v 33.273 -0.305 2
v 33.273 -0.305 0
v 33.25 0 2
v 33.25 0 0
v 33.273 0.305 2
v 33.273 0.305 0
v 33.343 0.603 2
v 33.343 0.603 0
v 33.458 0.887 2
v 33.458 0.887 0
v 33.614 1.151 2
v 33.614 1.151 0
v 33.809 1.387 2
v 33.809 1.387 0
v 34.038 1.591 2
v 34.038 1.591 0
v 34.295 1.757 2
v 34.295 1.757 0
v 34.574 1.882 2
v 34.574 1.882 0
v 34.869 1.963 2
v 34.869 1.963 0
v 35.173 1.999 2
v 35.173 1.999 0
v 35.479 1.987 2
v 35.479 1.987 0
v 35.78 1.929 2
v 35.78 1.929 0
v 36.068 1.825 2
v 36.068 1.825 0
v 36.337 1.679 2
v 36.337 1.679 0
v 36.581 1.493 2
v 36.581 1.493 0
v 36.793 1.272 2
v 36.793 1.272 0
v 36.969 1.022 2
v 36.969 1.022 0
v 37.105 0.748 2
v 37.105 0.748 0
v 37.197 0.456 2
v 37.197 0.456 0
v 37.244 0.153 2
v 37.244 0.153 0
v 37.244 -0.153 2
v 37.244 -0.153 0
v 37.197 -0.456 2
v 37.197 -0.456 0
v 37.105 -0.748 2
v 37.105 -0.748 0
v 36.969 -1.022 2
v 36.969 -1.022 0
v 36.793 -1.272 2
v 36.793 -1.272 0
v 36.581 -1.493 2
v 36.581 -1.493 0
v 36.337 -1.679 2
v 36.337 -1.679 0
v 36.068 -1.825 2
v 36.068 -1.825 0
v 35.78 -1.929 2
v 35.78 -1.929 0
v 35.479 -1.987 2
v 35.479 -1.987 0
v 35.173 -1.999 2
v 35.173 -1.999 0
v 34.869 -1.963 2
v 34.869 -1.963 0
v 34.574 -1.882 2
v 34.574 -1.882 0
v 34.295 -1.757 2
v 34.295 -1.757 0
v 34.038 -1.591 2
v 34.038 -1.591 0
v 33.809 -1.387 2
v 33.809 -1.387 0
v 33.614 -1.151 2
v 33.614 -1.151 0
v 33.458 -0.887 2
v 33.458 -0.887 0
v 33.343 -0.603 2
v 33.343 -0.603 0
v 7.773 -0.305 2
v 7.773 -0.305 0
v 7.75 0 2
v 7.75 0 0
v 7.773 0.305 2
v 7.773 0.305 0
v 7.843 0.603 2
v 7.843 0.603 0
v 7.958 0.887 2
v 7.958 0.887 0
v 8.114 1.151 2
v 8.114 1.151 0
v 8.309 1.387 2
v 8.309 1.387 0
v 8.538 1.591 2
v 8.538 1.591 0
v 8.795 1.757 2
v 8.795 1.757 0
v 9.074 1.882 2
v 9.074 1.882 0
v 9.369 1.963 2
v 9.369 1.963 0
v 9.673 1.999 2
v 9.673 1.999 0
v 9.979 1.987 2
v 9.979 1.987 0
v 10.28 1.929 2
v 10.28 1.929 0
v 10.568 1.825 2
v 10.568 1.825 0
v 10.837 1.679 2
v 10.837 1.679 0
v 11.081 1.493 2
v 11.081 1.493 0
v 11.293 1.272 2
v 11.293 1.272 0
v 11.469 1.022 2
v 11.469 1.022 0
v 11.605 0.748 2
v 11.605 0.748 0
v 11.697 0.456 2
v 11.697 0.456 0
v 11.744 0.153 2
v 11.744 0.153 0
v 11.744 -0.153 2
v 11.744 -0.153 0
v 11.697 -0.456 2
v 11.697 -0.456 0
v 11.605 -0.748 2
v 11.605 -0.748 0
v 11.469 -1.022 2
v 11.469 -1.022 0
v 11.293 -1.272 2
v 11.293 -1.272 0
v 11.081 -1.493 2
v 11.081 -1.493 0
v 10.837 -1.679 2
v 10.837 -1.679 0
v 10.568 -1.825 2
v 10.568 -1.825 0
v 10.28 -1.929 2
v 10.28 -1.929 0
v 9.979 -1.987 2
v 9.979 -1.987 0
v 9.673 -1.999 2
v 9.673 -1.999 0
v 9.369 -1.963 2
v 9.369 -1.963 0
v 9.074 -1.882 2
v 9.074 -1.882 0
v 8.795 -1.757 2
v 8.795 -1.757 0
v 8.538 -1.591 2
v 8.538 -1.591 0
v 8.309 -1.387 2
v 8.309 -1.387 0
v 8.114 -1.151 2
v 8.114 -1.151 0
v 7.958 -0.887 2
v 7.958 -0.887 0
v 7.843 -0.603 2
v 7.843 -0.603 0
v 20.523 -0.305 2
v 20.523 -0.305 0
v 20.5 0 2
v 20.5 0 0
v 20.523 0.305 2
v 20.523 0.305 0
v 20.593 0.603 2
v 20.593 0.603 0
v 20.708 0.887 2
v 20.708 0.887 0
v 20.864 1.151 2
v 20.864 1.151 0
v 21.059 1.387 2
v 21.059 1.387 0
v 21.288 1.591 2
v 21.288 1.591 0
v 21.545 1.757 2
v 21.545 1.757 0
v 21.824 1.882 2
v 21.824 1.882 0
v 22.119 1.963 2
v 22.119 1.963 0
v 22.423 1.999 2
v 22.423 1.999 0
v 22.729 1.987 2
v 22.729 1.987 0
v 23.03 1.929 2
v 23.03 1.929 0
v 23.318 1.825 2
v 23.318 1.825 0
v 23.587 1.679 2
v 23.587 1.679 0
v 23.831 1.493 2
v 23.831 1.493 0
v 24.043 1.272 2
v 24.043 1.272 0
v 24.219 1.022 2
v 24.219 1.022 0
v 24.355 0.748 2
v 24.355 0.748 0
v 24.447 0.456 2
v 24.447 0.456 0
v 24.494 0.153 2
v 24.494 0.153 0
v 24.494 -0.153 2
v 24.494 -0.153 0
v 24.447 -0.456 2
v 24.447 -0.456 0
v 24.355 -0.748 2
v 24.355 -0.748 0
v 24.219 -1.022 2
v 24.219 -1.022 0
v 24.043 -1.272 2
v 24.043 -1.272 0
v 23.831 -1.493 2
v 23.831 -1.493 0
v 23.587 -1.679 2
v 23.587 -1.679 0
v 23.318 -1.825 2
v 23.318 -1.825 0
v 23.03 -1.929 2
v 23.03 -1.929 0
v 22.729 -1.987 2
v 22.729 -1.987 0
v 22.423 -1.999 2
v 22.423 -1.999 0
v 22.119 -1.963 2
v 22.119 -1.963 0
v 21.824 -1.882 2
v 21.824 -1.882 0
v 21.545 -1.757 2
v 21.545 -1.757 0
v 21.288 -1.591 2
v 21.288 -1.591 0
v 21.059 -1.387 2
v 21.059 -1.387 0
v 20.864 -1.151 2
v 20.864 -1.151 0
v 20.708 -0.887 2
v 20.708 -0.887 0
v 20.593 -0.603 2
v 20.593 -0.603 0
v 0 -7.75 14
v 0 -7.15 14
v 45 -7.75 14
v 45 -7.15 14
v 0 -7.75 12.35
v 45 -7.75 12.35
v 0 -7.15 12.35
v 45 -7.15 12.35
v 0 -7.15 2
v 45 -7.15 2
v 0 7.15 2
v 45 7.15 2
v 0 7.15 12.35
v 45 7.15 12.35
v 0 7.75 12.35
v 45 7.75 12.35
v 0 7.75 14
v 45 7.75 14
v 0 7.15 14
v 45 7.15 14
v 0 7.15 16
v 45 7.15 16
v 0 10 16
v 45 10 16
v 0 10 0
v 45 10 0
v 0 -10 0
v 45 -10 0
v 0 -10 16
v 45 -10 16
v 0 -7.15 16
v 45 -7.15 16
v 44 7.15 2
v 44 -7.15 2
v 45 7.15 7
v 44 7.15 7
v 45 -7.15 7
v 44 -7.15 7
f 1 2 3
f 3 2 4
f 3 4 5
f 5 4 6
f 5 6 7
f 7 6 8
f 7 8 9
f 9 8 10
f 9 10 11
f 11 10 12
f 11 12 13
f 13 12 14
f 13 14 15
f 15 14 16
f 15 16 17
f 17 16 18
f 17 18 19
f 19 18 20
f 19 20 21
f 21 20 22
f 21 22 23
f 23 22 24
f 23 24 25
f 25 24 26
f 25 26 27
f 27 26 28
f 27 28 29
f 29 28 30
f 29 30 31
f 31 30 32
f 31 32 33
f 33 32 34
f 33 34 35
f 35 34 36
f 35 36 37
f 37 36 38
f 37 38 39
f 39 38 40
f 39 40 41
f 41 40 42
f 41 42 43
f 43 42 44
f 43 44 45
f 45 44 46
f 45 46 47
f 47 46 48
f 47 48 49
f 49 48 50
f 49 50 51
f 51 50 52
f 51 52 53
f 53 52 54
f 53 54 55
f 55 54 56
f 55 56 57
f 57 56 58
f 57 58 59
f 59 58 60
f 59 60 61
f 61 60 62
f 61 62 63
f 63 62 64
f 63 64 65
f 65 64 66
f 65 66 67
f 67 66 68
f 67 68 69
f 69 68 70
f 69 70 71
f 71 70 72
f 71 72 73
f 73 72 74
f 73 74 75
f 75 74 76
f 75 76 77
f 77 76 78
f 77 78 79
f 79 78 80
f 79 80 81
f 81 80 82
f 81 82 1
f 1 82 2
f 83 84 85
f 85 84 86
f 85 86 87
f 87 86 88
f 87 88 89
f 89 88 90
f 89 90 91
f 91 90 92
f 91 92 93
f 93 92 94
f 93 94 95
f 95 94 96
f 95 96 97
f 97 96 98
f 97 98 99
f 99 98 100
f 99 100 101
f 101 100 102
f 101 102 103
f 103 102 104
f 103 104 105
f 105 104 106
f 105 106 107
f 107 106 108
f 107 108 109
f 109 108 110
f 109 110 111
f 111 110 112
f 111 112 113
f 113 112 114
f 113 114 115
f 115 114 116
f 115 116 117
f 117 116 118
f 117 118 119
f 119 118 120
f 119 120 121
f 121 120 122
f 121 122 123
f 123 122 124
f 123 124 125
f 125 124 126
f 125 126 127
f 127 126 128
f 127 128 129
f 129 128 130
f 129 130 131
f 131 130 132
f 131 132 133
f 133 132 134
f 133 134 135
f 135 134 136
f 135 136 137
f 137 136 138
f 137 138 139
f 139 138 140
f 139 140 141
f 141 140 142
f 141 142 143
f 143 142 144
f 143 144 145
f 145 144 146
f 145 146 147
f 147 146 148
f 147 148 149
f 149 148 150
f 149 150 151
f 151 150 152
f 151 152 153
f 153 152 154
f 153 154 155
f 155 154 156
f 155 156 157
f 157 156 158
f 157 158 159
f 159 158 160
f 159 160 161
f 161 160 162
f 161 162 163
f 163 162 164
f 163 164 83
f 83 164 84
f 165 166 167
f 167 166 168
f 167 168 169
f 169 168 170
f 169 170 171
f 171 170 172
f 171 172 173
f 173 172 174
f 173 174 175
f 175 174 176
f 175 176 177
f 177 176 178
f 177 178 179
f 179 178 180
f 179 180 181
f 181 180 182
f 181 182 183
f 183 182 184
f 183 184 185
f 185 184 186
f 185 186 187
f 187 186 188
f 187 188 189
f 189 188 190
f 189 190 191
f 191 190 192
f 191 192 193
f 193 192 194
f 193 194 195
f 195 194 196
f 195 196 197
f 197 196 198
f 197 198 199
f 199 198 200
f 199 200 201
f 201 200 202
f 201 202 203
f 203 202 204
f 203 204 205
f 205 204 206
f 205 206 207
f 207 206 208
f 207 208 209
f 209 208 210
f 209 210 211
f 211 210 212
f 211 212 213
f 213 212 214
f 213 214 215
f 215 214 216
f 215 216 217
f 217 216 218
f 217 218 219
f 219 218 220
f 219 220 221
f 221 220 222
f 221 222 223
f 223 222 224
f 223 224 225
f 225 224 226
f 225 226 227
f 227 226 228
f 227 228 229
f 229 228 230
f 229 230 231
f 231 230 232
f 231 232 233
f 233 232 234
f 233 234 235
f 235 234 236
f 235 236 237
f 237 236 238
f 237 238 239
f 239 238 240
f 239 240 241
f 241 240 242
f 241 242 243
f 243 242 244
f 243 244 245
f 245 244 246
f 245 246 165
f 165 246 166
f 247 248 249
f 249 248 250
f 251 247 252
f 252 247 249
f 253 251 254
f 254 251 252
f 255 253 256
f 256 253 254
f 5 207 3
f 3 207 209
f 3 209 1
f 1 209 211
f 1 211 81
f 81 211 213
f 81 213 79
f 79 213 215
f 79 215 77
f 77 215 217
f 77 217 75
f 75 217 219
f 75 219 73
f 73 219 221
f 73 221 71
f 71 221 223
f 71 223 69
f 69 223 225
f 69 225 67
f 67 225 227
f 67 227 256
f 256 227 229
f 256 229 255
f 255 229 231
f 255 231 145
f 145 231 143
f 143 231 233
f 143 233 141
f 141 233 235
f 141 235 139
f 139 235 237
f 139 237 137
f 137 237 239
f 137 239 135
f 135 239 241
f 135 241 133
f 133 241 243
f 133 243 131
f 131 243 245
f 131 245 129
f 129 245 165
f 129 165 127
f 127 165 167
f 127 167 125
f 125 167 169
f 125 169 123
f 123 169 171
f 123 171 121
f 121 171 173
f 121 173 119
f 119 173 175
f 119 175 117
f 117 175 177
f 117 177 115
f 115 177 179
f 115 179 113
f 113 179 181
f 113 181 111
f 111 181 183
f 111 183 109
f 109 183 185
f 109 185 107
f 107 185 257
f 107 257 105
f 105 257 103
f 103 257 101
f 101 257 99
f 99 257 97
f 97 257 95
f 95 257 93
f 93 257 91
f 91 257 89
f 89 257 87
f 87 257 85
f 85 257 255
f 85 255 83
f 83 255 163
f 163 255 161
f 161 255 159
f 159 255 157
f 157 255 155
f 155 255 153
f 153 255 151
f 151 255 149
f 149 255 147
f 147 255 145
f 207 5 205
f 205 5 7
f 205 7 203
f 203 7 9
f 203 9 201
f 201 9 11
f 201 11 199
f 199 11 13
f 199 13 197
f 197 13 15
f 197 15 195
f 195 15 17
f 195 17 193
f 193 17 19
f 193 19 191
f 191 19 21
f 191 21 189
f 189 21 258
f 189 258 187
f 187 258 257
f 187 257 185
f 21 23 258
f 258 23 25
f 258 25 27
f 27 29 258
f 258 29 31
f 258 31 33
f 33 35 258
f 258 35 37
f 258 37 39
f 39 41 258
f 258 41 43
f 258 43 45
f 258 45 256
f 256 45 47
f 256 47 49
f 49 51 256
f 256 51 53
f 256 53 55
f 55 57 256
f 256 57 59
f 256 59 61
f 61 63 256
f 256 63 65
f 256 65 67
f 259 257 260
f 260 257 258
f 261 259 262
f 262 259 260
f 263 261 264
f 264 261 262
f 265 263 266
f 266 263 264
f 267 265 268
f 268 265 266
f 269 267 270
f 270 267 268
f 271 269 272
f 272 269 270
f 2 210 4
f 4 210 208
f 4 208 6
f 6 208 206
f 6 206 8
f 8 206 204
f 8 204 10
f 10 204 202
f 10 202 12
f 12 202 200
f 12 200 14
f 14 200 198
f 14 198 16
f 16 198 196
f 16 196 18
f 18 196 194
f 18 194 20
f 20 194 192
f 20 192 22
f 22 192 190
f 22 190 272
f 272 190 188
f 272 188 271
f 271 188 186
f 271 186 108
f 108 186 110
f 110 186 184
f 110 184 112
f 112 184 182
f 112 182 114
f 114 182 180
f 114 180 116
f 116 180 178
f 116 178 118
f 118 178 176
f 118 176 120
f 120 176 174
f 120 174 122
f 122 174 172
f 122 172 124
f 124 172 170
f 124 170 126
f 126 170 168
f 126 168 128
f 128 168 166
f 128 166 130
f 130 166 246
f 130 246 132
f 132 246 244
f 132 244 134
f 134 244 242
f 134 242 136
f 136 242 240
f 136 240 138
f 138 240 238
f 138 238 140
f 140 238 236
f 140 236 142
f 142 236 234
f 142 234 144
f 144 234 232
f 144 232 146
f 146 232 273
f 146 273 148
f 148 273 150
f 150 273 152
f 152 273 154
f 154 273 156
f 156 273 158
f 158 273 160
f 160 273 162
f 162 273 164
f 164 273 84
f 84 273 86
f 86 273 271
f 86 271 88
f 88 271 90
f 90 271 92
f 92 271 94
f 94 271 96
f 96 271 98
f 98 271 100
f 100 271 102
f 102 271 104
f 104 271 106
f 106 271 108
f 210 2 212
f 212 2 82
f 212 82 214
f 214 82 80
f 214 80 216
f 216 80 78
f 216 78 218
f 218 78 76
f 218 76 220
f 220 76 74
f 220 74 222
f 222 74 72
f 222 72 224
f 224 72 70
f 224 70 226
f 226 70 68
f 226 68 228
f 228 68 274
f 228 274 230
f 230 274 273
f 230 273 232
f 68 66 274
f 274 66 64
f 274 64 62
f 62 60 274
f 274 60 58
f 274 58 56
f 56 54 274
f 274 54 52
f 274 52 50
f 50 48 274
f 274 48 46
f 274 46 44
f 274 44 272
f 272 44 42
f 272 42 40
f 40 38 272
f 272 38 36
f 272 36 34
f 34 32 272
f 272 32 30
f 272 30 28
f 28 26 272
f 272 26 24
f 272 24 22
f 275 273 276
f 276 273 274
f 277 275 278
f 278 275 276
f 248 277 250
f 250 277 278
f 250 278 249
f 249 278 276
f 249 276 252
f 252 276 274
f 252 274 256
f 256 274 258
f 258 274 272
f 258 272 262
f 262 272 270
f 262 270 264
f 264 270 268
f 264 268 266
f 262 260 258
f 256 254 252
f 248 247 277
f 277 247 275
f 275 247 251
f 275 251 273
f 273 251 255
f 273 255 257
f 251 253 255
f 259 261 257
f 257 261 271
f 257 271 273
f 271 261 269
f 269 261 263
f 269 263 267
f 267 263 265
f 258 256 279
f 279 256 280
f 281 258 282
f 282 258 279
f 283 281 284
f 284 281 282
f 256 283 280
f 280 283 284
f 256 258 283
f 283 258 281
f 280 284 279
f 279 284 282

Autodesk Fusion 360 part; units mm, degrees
sketch "Main Body" plane through (0, 0, 0) normal (1, 0, 0) x (0, 1, 0)
  line L0 (7.15, 16) -> (10, 16)
  line L1 (10, 16) -> (10, 0)
  line L2 (10, 0) -> (0, 0)
  line L3 (7.15, 16) -> (7.15, 14)
  line L4 (7.15, 14) -> (7.75, 14)
  line L5 (7.75, 14) -> (7.75, 12.35)
  line L6 (7.75, 12.35) -> (7.15, 12.35)
  line L7 (7.15, 12.35) -> (7.15, 2)
  line L8 (7.15, 2) -> (0, 2)
  line L9 (0, 16.5) -> (0, -3.5) construction
  line L10 (-10, 16) -> (-10, 0)
  line L11 (-7.15, 14) -> (-7.75, 14)
  line L12 (-7.75, 12.35) -> (-7.15, 12.35)
  line L13 (-10, 0) -> (0, 0)
  line L14 (-7.15, 12.35) -> (-7.15, 2)
  line L15 (-7.75, 14) -> (-7.75, 12.35)
  line L16 (-7.15, 2) -> (0, 2)
  line L17 (-7.15, 16) -> (-7.15, 14)
  line L18 (-7.15, 16) -> (-10, 16)
  point P0 (0, 16.5)
  point P1 (0, -3.5)
  dimension "d1" = 14
  dimension "d3" = 7.75
  dimension "d4" = 2
  dimension "d5" = 0.6
  dimension "d6" = 0.6
  dimension "d7" = 1.65
  dimension "d25" = 10
  dimension "d26" = 2
extrude "Extrude1" add sketch "Main Body" along normal blind 45 makes body 1
sketch "Mounting Hole" plane through (0, 0, 0) normal (0, 0, -1) x (1, 0, 0)
  line L0 (0, 10) -> (0, -10)
  line L1 (0, -10) -> (45, -10)
  line L2 (45, -10) -> (45, 10)
  line L3 (45, 10) -> (0, 10)
  line L4 (0, -10) -> (45, 10) construction
  line L5 (45, -10) -> (0, 10) construction
  circle A0 centre (22.5, 0) radius 2
  dimension "d10" = 4
extrude "Extrude2" cut sketch "Mounting Hole" against normal up to surface (2 mm away) contours A0 bodies 1
sketch "Sketch7" plane through (45, 0, 0) normal (1, 0, 0) x (0, 1, 0)
  line L0 (-7.15, 14) -> (-7.15, 16)
  line L1 (-7.15, 16) -> (-10, 16)
  line L2 (-10, 16) -> (-10, 0)
  line L3 (-10, 0) -> (10, 0)
  line L4 (10, 0) -> (10, 16)
  line L5 (10, 16) -> (7.15, 16)
  line L6 (7.15, 16) -> (7.15, 14)
  line L7 (7.15, 14) -> (7.75, 14)
  line L8 (7.75, 14) -> (7.75, 12.35)
  line L9 (7.75, 12.35) -> (7.15, 12.35)
  line L10 (7.15, 12.35) -> (7.15, 2)
  line L11 (7.15, 2) -> (-7.15, 2)
  line L12 (-7.15, 2) -> (-7.15, 12.35)
  line L13 (-7.15, 12.35) -> (-7.75, 12.35)
  line L14 (-7.75, 12.35) -> (-7.75, 14)
  line L15 (-7.75, 14) -> (-7.15, 14)
  line L16 (-7.15, 2) -> (7.15, 2)
  line L17 (7.15, 2) -> (7.15, 7)
  line L18 (7.15, 7) -> (-7.15, 7)
  line L19 (-7.15, 7) -> (-7.15, 2)
  dimension "d29" = 5
extrude "Extrude5" add sketch "Sketch7" against normal blind 1 separate body contours L10 L11 L12 L16 L17 L18 L19 makes body 2
pattern_linear "R-Pattern2" count 3 spacing 12.75 along (1, 0, 0) both ways of "Extrude2"
equation "d6 = d5"
equation "d8 = HolderLength"
equation "HolderLength = LargeHolder"
equation "SmallHolder = 23 mm"
equation "LargeHolder = 45 mm"
